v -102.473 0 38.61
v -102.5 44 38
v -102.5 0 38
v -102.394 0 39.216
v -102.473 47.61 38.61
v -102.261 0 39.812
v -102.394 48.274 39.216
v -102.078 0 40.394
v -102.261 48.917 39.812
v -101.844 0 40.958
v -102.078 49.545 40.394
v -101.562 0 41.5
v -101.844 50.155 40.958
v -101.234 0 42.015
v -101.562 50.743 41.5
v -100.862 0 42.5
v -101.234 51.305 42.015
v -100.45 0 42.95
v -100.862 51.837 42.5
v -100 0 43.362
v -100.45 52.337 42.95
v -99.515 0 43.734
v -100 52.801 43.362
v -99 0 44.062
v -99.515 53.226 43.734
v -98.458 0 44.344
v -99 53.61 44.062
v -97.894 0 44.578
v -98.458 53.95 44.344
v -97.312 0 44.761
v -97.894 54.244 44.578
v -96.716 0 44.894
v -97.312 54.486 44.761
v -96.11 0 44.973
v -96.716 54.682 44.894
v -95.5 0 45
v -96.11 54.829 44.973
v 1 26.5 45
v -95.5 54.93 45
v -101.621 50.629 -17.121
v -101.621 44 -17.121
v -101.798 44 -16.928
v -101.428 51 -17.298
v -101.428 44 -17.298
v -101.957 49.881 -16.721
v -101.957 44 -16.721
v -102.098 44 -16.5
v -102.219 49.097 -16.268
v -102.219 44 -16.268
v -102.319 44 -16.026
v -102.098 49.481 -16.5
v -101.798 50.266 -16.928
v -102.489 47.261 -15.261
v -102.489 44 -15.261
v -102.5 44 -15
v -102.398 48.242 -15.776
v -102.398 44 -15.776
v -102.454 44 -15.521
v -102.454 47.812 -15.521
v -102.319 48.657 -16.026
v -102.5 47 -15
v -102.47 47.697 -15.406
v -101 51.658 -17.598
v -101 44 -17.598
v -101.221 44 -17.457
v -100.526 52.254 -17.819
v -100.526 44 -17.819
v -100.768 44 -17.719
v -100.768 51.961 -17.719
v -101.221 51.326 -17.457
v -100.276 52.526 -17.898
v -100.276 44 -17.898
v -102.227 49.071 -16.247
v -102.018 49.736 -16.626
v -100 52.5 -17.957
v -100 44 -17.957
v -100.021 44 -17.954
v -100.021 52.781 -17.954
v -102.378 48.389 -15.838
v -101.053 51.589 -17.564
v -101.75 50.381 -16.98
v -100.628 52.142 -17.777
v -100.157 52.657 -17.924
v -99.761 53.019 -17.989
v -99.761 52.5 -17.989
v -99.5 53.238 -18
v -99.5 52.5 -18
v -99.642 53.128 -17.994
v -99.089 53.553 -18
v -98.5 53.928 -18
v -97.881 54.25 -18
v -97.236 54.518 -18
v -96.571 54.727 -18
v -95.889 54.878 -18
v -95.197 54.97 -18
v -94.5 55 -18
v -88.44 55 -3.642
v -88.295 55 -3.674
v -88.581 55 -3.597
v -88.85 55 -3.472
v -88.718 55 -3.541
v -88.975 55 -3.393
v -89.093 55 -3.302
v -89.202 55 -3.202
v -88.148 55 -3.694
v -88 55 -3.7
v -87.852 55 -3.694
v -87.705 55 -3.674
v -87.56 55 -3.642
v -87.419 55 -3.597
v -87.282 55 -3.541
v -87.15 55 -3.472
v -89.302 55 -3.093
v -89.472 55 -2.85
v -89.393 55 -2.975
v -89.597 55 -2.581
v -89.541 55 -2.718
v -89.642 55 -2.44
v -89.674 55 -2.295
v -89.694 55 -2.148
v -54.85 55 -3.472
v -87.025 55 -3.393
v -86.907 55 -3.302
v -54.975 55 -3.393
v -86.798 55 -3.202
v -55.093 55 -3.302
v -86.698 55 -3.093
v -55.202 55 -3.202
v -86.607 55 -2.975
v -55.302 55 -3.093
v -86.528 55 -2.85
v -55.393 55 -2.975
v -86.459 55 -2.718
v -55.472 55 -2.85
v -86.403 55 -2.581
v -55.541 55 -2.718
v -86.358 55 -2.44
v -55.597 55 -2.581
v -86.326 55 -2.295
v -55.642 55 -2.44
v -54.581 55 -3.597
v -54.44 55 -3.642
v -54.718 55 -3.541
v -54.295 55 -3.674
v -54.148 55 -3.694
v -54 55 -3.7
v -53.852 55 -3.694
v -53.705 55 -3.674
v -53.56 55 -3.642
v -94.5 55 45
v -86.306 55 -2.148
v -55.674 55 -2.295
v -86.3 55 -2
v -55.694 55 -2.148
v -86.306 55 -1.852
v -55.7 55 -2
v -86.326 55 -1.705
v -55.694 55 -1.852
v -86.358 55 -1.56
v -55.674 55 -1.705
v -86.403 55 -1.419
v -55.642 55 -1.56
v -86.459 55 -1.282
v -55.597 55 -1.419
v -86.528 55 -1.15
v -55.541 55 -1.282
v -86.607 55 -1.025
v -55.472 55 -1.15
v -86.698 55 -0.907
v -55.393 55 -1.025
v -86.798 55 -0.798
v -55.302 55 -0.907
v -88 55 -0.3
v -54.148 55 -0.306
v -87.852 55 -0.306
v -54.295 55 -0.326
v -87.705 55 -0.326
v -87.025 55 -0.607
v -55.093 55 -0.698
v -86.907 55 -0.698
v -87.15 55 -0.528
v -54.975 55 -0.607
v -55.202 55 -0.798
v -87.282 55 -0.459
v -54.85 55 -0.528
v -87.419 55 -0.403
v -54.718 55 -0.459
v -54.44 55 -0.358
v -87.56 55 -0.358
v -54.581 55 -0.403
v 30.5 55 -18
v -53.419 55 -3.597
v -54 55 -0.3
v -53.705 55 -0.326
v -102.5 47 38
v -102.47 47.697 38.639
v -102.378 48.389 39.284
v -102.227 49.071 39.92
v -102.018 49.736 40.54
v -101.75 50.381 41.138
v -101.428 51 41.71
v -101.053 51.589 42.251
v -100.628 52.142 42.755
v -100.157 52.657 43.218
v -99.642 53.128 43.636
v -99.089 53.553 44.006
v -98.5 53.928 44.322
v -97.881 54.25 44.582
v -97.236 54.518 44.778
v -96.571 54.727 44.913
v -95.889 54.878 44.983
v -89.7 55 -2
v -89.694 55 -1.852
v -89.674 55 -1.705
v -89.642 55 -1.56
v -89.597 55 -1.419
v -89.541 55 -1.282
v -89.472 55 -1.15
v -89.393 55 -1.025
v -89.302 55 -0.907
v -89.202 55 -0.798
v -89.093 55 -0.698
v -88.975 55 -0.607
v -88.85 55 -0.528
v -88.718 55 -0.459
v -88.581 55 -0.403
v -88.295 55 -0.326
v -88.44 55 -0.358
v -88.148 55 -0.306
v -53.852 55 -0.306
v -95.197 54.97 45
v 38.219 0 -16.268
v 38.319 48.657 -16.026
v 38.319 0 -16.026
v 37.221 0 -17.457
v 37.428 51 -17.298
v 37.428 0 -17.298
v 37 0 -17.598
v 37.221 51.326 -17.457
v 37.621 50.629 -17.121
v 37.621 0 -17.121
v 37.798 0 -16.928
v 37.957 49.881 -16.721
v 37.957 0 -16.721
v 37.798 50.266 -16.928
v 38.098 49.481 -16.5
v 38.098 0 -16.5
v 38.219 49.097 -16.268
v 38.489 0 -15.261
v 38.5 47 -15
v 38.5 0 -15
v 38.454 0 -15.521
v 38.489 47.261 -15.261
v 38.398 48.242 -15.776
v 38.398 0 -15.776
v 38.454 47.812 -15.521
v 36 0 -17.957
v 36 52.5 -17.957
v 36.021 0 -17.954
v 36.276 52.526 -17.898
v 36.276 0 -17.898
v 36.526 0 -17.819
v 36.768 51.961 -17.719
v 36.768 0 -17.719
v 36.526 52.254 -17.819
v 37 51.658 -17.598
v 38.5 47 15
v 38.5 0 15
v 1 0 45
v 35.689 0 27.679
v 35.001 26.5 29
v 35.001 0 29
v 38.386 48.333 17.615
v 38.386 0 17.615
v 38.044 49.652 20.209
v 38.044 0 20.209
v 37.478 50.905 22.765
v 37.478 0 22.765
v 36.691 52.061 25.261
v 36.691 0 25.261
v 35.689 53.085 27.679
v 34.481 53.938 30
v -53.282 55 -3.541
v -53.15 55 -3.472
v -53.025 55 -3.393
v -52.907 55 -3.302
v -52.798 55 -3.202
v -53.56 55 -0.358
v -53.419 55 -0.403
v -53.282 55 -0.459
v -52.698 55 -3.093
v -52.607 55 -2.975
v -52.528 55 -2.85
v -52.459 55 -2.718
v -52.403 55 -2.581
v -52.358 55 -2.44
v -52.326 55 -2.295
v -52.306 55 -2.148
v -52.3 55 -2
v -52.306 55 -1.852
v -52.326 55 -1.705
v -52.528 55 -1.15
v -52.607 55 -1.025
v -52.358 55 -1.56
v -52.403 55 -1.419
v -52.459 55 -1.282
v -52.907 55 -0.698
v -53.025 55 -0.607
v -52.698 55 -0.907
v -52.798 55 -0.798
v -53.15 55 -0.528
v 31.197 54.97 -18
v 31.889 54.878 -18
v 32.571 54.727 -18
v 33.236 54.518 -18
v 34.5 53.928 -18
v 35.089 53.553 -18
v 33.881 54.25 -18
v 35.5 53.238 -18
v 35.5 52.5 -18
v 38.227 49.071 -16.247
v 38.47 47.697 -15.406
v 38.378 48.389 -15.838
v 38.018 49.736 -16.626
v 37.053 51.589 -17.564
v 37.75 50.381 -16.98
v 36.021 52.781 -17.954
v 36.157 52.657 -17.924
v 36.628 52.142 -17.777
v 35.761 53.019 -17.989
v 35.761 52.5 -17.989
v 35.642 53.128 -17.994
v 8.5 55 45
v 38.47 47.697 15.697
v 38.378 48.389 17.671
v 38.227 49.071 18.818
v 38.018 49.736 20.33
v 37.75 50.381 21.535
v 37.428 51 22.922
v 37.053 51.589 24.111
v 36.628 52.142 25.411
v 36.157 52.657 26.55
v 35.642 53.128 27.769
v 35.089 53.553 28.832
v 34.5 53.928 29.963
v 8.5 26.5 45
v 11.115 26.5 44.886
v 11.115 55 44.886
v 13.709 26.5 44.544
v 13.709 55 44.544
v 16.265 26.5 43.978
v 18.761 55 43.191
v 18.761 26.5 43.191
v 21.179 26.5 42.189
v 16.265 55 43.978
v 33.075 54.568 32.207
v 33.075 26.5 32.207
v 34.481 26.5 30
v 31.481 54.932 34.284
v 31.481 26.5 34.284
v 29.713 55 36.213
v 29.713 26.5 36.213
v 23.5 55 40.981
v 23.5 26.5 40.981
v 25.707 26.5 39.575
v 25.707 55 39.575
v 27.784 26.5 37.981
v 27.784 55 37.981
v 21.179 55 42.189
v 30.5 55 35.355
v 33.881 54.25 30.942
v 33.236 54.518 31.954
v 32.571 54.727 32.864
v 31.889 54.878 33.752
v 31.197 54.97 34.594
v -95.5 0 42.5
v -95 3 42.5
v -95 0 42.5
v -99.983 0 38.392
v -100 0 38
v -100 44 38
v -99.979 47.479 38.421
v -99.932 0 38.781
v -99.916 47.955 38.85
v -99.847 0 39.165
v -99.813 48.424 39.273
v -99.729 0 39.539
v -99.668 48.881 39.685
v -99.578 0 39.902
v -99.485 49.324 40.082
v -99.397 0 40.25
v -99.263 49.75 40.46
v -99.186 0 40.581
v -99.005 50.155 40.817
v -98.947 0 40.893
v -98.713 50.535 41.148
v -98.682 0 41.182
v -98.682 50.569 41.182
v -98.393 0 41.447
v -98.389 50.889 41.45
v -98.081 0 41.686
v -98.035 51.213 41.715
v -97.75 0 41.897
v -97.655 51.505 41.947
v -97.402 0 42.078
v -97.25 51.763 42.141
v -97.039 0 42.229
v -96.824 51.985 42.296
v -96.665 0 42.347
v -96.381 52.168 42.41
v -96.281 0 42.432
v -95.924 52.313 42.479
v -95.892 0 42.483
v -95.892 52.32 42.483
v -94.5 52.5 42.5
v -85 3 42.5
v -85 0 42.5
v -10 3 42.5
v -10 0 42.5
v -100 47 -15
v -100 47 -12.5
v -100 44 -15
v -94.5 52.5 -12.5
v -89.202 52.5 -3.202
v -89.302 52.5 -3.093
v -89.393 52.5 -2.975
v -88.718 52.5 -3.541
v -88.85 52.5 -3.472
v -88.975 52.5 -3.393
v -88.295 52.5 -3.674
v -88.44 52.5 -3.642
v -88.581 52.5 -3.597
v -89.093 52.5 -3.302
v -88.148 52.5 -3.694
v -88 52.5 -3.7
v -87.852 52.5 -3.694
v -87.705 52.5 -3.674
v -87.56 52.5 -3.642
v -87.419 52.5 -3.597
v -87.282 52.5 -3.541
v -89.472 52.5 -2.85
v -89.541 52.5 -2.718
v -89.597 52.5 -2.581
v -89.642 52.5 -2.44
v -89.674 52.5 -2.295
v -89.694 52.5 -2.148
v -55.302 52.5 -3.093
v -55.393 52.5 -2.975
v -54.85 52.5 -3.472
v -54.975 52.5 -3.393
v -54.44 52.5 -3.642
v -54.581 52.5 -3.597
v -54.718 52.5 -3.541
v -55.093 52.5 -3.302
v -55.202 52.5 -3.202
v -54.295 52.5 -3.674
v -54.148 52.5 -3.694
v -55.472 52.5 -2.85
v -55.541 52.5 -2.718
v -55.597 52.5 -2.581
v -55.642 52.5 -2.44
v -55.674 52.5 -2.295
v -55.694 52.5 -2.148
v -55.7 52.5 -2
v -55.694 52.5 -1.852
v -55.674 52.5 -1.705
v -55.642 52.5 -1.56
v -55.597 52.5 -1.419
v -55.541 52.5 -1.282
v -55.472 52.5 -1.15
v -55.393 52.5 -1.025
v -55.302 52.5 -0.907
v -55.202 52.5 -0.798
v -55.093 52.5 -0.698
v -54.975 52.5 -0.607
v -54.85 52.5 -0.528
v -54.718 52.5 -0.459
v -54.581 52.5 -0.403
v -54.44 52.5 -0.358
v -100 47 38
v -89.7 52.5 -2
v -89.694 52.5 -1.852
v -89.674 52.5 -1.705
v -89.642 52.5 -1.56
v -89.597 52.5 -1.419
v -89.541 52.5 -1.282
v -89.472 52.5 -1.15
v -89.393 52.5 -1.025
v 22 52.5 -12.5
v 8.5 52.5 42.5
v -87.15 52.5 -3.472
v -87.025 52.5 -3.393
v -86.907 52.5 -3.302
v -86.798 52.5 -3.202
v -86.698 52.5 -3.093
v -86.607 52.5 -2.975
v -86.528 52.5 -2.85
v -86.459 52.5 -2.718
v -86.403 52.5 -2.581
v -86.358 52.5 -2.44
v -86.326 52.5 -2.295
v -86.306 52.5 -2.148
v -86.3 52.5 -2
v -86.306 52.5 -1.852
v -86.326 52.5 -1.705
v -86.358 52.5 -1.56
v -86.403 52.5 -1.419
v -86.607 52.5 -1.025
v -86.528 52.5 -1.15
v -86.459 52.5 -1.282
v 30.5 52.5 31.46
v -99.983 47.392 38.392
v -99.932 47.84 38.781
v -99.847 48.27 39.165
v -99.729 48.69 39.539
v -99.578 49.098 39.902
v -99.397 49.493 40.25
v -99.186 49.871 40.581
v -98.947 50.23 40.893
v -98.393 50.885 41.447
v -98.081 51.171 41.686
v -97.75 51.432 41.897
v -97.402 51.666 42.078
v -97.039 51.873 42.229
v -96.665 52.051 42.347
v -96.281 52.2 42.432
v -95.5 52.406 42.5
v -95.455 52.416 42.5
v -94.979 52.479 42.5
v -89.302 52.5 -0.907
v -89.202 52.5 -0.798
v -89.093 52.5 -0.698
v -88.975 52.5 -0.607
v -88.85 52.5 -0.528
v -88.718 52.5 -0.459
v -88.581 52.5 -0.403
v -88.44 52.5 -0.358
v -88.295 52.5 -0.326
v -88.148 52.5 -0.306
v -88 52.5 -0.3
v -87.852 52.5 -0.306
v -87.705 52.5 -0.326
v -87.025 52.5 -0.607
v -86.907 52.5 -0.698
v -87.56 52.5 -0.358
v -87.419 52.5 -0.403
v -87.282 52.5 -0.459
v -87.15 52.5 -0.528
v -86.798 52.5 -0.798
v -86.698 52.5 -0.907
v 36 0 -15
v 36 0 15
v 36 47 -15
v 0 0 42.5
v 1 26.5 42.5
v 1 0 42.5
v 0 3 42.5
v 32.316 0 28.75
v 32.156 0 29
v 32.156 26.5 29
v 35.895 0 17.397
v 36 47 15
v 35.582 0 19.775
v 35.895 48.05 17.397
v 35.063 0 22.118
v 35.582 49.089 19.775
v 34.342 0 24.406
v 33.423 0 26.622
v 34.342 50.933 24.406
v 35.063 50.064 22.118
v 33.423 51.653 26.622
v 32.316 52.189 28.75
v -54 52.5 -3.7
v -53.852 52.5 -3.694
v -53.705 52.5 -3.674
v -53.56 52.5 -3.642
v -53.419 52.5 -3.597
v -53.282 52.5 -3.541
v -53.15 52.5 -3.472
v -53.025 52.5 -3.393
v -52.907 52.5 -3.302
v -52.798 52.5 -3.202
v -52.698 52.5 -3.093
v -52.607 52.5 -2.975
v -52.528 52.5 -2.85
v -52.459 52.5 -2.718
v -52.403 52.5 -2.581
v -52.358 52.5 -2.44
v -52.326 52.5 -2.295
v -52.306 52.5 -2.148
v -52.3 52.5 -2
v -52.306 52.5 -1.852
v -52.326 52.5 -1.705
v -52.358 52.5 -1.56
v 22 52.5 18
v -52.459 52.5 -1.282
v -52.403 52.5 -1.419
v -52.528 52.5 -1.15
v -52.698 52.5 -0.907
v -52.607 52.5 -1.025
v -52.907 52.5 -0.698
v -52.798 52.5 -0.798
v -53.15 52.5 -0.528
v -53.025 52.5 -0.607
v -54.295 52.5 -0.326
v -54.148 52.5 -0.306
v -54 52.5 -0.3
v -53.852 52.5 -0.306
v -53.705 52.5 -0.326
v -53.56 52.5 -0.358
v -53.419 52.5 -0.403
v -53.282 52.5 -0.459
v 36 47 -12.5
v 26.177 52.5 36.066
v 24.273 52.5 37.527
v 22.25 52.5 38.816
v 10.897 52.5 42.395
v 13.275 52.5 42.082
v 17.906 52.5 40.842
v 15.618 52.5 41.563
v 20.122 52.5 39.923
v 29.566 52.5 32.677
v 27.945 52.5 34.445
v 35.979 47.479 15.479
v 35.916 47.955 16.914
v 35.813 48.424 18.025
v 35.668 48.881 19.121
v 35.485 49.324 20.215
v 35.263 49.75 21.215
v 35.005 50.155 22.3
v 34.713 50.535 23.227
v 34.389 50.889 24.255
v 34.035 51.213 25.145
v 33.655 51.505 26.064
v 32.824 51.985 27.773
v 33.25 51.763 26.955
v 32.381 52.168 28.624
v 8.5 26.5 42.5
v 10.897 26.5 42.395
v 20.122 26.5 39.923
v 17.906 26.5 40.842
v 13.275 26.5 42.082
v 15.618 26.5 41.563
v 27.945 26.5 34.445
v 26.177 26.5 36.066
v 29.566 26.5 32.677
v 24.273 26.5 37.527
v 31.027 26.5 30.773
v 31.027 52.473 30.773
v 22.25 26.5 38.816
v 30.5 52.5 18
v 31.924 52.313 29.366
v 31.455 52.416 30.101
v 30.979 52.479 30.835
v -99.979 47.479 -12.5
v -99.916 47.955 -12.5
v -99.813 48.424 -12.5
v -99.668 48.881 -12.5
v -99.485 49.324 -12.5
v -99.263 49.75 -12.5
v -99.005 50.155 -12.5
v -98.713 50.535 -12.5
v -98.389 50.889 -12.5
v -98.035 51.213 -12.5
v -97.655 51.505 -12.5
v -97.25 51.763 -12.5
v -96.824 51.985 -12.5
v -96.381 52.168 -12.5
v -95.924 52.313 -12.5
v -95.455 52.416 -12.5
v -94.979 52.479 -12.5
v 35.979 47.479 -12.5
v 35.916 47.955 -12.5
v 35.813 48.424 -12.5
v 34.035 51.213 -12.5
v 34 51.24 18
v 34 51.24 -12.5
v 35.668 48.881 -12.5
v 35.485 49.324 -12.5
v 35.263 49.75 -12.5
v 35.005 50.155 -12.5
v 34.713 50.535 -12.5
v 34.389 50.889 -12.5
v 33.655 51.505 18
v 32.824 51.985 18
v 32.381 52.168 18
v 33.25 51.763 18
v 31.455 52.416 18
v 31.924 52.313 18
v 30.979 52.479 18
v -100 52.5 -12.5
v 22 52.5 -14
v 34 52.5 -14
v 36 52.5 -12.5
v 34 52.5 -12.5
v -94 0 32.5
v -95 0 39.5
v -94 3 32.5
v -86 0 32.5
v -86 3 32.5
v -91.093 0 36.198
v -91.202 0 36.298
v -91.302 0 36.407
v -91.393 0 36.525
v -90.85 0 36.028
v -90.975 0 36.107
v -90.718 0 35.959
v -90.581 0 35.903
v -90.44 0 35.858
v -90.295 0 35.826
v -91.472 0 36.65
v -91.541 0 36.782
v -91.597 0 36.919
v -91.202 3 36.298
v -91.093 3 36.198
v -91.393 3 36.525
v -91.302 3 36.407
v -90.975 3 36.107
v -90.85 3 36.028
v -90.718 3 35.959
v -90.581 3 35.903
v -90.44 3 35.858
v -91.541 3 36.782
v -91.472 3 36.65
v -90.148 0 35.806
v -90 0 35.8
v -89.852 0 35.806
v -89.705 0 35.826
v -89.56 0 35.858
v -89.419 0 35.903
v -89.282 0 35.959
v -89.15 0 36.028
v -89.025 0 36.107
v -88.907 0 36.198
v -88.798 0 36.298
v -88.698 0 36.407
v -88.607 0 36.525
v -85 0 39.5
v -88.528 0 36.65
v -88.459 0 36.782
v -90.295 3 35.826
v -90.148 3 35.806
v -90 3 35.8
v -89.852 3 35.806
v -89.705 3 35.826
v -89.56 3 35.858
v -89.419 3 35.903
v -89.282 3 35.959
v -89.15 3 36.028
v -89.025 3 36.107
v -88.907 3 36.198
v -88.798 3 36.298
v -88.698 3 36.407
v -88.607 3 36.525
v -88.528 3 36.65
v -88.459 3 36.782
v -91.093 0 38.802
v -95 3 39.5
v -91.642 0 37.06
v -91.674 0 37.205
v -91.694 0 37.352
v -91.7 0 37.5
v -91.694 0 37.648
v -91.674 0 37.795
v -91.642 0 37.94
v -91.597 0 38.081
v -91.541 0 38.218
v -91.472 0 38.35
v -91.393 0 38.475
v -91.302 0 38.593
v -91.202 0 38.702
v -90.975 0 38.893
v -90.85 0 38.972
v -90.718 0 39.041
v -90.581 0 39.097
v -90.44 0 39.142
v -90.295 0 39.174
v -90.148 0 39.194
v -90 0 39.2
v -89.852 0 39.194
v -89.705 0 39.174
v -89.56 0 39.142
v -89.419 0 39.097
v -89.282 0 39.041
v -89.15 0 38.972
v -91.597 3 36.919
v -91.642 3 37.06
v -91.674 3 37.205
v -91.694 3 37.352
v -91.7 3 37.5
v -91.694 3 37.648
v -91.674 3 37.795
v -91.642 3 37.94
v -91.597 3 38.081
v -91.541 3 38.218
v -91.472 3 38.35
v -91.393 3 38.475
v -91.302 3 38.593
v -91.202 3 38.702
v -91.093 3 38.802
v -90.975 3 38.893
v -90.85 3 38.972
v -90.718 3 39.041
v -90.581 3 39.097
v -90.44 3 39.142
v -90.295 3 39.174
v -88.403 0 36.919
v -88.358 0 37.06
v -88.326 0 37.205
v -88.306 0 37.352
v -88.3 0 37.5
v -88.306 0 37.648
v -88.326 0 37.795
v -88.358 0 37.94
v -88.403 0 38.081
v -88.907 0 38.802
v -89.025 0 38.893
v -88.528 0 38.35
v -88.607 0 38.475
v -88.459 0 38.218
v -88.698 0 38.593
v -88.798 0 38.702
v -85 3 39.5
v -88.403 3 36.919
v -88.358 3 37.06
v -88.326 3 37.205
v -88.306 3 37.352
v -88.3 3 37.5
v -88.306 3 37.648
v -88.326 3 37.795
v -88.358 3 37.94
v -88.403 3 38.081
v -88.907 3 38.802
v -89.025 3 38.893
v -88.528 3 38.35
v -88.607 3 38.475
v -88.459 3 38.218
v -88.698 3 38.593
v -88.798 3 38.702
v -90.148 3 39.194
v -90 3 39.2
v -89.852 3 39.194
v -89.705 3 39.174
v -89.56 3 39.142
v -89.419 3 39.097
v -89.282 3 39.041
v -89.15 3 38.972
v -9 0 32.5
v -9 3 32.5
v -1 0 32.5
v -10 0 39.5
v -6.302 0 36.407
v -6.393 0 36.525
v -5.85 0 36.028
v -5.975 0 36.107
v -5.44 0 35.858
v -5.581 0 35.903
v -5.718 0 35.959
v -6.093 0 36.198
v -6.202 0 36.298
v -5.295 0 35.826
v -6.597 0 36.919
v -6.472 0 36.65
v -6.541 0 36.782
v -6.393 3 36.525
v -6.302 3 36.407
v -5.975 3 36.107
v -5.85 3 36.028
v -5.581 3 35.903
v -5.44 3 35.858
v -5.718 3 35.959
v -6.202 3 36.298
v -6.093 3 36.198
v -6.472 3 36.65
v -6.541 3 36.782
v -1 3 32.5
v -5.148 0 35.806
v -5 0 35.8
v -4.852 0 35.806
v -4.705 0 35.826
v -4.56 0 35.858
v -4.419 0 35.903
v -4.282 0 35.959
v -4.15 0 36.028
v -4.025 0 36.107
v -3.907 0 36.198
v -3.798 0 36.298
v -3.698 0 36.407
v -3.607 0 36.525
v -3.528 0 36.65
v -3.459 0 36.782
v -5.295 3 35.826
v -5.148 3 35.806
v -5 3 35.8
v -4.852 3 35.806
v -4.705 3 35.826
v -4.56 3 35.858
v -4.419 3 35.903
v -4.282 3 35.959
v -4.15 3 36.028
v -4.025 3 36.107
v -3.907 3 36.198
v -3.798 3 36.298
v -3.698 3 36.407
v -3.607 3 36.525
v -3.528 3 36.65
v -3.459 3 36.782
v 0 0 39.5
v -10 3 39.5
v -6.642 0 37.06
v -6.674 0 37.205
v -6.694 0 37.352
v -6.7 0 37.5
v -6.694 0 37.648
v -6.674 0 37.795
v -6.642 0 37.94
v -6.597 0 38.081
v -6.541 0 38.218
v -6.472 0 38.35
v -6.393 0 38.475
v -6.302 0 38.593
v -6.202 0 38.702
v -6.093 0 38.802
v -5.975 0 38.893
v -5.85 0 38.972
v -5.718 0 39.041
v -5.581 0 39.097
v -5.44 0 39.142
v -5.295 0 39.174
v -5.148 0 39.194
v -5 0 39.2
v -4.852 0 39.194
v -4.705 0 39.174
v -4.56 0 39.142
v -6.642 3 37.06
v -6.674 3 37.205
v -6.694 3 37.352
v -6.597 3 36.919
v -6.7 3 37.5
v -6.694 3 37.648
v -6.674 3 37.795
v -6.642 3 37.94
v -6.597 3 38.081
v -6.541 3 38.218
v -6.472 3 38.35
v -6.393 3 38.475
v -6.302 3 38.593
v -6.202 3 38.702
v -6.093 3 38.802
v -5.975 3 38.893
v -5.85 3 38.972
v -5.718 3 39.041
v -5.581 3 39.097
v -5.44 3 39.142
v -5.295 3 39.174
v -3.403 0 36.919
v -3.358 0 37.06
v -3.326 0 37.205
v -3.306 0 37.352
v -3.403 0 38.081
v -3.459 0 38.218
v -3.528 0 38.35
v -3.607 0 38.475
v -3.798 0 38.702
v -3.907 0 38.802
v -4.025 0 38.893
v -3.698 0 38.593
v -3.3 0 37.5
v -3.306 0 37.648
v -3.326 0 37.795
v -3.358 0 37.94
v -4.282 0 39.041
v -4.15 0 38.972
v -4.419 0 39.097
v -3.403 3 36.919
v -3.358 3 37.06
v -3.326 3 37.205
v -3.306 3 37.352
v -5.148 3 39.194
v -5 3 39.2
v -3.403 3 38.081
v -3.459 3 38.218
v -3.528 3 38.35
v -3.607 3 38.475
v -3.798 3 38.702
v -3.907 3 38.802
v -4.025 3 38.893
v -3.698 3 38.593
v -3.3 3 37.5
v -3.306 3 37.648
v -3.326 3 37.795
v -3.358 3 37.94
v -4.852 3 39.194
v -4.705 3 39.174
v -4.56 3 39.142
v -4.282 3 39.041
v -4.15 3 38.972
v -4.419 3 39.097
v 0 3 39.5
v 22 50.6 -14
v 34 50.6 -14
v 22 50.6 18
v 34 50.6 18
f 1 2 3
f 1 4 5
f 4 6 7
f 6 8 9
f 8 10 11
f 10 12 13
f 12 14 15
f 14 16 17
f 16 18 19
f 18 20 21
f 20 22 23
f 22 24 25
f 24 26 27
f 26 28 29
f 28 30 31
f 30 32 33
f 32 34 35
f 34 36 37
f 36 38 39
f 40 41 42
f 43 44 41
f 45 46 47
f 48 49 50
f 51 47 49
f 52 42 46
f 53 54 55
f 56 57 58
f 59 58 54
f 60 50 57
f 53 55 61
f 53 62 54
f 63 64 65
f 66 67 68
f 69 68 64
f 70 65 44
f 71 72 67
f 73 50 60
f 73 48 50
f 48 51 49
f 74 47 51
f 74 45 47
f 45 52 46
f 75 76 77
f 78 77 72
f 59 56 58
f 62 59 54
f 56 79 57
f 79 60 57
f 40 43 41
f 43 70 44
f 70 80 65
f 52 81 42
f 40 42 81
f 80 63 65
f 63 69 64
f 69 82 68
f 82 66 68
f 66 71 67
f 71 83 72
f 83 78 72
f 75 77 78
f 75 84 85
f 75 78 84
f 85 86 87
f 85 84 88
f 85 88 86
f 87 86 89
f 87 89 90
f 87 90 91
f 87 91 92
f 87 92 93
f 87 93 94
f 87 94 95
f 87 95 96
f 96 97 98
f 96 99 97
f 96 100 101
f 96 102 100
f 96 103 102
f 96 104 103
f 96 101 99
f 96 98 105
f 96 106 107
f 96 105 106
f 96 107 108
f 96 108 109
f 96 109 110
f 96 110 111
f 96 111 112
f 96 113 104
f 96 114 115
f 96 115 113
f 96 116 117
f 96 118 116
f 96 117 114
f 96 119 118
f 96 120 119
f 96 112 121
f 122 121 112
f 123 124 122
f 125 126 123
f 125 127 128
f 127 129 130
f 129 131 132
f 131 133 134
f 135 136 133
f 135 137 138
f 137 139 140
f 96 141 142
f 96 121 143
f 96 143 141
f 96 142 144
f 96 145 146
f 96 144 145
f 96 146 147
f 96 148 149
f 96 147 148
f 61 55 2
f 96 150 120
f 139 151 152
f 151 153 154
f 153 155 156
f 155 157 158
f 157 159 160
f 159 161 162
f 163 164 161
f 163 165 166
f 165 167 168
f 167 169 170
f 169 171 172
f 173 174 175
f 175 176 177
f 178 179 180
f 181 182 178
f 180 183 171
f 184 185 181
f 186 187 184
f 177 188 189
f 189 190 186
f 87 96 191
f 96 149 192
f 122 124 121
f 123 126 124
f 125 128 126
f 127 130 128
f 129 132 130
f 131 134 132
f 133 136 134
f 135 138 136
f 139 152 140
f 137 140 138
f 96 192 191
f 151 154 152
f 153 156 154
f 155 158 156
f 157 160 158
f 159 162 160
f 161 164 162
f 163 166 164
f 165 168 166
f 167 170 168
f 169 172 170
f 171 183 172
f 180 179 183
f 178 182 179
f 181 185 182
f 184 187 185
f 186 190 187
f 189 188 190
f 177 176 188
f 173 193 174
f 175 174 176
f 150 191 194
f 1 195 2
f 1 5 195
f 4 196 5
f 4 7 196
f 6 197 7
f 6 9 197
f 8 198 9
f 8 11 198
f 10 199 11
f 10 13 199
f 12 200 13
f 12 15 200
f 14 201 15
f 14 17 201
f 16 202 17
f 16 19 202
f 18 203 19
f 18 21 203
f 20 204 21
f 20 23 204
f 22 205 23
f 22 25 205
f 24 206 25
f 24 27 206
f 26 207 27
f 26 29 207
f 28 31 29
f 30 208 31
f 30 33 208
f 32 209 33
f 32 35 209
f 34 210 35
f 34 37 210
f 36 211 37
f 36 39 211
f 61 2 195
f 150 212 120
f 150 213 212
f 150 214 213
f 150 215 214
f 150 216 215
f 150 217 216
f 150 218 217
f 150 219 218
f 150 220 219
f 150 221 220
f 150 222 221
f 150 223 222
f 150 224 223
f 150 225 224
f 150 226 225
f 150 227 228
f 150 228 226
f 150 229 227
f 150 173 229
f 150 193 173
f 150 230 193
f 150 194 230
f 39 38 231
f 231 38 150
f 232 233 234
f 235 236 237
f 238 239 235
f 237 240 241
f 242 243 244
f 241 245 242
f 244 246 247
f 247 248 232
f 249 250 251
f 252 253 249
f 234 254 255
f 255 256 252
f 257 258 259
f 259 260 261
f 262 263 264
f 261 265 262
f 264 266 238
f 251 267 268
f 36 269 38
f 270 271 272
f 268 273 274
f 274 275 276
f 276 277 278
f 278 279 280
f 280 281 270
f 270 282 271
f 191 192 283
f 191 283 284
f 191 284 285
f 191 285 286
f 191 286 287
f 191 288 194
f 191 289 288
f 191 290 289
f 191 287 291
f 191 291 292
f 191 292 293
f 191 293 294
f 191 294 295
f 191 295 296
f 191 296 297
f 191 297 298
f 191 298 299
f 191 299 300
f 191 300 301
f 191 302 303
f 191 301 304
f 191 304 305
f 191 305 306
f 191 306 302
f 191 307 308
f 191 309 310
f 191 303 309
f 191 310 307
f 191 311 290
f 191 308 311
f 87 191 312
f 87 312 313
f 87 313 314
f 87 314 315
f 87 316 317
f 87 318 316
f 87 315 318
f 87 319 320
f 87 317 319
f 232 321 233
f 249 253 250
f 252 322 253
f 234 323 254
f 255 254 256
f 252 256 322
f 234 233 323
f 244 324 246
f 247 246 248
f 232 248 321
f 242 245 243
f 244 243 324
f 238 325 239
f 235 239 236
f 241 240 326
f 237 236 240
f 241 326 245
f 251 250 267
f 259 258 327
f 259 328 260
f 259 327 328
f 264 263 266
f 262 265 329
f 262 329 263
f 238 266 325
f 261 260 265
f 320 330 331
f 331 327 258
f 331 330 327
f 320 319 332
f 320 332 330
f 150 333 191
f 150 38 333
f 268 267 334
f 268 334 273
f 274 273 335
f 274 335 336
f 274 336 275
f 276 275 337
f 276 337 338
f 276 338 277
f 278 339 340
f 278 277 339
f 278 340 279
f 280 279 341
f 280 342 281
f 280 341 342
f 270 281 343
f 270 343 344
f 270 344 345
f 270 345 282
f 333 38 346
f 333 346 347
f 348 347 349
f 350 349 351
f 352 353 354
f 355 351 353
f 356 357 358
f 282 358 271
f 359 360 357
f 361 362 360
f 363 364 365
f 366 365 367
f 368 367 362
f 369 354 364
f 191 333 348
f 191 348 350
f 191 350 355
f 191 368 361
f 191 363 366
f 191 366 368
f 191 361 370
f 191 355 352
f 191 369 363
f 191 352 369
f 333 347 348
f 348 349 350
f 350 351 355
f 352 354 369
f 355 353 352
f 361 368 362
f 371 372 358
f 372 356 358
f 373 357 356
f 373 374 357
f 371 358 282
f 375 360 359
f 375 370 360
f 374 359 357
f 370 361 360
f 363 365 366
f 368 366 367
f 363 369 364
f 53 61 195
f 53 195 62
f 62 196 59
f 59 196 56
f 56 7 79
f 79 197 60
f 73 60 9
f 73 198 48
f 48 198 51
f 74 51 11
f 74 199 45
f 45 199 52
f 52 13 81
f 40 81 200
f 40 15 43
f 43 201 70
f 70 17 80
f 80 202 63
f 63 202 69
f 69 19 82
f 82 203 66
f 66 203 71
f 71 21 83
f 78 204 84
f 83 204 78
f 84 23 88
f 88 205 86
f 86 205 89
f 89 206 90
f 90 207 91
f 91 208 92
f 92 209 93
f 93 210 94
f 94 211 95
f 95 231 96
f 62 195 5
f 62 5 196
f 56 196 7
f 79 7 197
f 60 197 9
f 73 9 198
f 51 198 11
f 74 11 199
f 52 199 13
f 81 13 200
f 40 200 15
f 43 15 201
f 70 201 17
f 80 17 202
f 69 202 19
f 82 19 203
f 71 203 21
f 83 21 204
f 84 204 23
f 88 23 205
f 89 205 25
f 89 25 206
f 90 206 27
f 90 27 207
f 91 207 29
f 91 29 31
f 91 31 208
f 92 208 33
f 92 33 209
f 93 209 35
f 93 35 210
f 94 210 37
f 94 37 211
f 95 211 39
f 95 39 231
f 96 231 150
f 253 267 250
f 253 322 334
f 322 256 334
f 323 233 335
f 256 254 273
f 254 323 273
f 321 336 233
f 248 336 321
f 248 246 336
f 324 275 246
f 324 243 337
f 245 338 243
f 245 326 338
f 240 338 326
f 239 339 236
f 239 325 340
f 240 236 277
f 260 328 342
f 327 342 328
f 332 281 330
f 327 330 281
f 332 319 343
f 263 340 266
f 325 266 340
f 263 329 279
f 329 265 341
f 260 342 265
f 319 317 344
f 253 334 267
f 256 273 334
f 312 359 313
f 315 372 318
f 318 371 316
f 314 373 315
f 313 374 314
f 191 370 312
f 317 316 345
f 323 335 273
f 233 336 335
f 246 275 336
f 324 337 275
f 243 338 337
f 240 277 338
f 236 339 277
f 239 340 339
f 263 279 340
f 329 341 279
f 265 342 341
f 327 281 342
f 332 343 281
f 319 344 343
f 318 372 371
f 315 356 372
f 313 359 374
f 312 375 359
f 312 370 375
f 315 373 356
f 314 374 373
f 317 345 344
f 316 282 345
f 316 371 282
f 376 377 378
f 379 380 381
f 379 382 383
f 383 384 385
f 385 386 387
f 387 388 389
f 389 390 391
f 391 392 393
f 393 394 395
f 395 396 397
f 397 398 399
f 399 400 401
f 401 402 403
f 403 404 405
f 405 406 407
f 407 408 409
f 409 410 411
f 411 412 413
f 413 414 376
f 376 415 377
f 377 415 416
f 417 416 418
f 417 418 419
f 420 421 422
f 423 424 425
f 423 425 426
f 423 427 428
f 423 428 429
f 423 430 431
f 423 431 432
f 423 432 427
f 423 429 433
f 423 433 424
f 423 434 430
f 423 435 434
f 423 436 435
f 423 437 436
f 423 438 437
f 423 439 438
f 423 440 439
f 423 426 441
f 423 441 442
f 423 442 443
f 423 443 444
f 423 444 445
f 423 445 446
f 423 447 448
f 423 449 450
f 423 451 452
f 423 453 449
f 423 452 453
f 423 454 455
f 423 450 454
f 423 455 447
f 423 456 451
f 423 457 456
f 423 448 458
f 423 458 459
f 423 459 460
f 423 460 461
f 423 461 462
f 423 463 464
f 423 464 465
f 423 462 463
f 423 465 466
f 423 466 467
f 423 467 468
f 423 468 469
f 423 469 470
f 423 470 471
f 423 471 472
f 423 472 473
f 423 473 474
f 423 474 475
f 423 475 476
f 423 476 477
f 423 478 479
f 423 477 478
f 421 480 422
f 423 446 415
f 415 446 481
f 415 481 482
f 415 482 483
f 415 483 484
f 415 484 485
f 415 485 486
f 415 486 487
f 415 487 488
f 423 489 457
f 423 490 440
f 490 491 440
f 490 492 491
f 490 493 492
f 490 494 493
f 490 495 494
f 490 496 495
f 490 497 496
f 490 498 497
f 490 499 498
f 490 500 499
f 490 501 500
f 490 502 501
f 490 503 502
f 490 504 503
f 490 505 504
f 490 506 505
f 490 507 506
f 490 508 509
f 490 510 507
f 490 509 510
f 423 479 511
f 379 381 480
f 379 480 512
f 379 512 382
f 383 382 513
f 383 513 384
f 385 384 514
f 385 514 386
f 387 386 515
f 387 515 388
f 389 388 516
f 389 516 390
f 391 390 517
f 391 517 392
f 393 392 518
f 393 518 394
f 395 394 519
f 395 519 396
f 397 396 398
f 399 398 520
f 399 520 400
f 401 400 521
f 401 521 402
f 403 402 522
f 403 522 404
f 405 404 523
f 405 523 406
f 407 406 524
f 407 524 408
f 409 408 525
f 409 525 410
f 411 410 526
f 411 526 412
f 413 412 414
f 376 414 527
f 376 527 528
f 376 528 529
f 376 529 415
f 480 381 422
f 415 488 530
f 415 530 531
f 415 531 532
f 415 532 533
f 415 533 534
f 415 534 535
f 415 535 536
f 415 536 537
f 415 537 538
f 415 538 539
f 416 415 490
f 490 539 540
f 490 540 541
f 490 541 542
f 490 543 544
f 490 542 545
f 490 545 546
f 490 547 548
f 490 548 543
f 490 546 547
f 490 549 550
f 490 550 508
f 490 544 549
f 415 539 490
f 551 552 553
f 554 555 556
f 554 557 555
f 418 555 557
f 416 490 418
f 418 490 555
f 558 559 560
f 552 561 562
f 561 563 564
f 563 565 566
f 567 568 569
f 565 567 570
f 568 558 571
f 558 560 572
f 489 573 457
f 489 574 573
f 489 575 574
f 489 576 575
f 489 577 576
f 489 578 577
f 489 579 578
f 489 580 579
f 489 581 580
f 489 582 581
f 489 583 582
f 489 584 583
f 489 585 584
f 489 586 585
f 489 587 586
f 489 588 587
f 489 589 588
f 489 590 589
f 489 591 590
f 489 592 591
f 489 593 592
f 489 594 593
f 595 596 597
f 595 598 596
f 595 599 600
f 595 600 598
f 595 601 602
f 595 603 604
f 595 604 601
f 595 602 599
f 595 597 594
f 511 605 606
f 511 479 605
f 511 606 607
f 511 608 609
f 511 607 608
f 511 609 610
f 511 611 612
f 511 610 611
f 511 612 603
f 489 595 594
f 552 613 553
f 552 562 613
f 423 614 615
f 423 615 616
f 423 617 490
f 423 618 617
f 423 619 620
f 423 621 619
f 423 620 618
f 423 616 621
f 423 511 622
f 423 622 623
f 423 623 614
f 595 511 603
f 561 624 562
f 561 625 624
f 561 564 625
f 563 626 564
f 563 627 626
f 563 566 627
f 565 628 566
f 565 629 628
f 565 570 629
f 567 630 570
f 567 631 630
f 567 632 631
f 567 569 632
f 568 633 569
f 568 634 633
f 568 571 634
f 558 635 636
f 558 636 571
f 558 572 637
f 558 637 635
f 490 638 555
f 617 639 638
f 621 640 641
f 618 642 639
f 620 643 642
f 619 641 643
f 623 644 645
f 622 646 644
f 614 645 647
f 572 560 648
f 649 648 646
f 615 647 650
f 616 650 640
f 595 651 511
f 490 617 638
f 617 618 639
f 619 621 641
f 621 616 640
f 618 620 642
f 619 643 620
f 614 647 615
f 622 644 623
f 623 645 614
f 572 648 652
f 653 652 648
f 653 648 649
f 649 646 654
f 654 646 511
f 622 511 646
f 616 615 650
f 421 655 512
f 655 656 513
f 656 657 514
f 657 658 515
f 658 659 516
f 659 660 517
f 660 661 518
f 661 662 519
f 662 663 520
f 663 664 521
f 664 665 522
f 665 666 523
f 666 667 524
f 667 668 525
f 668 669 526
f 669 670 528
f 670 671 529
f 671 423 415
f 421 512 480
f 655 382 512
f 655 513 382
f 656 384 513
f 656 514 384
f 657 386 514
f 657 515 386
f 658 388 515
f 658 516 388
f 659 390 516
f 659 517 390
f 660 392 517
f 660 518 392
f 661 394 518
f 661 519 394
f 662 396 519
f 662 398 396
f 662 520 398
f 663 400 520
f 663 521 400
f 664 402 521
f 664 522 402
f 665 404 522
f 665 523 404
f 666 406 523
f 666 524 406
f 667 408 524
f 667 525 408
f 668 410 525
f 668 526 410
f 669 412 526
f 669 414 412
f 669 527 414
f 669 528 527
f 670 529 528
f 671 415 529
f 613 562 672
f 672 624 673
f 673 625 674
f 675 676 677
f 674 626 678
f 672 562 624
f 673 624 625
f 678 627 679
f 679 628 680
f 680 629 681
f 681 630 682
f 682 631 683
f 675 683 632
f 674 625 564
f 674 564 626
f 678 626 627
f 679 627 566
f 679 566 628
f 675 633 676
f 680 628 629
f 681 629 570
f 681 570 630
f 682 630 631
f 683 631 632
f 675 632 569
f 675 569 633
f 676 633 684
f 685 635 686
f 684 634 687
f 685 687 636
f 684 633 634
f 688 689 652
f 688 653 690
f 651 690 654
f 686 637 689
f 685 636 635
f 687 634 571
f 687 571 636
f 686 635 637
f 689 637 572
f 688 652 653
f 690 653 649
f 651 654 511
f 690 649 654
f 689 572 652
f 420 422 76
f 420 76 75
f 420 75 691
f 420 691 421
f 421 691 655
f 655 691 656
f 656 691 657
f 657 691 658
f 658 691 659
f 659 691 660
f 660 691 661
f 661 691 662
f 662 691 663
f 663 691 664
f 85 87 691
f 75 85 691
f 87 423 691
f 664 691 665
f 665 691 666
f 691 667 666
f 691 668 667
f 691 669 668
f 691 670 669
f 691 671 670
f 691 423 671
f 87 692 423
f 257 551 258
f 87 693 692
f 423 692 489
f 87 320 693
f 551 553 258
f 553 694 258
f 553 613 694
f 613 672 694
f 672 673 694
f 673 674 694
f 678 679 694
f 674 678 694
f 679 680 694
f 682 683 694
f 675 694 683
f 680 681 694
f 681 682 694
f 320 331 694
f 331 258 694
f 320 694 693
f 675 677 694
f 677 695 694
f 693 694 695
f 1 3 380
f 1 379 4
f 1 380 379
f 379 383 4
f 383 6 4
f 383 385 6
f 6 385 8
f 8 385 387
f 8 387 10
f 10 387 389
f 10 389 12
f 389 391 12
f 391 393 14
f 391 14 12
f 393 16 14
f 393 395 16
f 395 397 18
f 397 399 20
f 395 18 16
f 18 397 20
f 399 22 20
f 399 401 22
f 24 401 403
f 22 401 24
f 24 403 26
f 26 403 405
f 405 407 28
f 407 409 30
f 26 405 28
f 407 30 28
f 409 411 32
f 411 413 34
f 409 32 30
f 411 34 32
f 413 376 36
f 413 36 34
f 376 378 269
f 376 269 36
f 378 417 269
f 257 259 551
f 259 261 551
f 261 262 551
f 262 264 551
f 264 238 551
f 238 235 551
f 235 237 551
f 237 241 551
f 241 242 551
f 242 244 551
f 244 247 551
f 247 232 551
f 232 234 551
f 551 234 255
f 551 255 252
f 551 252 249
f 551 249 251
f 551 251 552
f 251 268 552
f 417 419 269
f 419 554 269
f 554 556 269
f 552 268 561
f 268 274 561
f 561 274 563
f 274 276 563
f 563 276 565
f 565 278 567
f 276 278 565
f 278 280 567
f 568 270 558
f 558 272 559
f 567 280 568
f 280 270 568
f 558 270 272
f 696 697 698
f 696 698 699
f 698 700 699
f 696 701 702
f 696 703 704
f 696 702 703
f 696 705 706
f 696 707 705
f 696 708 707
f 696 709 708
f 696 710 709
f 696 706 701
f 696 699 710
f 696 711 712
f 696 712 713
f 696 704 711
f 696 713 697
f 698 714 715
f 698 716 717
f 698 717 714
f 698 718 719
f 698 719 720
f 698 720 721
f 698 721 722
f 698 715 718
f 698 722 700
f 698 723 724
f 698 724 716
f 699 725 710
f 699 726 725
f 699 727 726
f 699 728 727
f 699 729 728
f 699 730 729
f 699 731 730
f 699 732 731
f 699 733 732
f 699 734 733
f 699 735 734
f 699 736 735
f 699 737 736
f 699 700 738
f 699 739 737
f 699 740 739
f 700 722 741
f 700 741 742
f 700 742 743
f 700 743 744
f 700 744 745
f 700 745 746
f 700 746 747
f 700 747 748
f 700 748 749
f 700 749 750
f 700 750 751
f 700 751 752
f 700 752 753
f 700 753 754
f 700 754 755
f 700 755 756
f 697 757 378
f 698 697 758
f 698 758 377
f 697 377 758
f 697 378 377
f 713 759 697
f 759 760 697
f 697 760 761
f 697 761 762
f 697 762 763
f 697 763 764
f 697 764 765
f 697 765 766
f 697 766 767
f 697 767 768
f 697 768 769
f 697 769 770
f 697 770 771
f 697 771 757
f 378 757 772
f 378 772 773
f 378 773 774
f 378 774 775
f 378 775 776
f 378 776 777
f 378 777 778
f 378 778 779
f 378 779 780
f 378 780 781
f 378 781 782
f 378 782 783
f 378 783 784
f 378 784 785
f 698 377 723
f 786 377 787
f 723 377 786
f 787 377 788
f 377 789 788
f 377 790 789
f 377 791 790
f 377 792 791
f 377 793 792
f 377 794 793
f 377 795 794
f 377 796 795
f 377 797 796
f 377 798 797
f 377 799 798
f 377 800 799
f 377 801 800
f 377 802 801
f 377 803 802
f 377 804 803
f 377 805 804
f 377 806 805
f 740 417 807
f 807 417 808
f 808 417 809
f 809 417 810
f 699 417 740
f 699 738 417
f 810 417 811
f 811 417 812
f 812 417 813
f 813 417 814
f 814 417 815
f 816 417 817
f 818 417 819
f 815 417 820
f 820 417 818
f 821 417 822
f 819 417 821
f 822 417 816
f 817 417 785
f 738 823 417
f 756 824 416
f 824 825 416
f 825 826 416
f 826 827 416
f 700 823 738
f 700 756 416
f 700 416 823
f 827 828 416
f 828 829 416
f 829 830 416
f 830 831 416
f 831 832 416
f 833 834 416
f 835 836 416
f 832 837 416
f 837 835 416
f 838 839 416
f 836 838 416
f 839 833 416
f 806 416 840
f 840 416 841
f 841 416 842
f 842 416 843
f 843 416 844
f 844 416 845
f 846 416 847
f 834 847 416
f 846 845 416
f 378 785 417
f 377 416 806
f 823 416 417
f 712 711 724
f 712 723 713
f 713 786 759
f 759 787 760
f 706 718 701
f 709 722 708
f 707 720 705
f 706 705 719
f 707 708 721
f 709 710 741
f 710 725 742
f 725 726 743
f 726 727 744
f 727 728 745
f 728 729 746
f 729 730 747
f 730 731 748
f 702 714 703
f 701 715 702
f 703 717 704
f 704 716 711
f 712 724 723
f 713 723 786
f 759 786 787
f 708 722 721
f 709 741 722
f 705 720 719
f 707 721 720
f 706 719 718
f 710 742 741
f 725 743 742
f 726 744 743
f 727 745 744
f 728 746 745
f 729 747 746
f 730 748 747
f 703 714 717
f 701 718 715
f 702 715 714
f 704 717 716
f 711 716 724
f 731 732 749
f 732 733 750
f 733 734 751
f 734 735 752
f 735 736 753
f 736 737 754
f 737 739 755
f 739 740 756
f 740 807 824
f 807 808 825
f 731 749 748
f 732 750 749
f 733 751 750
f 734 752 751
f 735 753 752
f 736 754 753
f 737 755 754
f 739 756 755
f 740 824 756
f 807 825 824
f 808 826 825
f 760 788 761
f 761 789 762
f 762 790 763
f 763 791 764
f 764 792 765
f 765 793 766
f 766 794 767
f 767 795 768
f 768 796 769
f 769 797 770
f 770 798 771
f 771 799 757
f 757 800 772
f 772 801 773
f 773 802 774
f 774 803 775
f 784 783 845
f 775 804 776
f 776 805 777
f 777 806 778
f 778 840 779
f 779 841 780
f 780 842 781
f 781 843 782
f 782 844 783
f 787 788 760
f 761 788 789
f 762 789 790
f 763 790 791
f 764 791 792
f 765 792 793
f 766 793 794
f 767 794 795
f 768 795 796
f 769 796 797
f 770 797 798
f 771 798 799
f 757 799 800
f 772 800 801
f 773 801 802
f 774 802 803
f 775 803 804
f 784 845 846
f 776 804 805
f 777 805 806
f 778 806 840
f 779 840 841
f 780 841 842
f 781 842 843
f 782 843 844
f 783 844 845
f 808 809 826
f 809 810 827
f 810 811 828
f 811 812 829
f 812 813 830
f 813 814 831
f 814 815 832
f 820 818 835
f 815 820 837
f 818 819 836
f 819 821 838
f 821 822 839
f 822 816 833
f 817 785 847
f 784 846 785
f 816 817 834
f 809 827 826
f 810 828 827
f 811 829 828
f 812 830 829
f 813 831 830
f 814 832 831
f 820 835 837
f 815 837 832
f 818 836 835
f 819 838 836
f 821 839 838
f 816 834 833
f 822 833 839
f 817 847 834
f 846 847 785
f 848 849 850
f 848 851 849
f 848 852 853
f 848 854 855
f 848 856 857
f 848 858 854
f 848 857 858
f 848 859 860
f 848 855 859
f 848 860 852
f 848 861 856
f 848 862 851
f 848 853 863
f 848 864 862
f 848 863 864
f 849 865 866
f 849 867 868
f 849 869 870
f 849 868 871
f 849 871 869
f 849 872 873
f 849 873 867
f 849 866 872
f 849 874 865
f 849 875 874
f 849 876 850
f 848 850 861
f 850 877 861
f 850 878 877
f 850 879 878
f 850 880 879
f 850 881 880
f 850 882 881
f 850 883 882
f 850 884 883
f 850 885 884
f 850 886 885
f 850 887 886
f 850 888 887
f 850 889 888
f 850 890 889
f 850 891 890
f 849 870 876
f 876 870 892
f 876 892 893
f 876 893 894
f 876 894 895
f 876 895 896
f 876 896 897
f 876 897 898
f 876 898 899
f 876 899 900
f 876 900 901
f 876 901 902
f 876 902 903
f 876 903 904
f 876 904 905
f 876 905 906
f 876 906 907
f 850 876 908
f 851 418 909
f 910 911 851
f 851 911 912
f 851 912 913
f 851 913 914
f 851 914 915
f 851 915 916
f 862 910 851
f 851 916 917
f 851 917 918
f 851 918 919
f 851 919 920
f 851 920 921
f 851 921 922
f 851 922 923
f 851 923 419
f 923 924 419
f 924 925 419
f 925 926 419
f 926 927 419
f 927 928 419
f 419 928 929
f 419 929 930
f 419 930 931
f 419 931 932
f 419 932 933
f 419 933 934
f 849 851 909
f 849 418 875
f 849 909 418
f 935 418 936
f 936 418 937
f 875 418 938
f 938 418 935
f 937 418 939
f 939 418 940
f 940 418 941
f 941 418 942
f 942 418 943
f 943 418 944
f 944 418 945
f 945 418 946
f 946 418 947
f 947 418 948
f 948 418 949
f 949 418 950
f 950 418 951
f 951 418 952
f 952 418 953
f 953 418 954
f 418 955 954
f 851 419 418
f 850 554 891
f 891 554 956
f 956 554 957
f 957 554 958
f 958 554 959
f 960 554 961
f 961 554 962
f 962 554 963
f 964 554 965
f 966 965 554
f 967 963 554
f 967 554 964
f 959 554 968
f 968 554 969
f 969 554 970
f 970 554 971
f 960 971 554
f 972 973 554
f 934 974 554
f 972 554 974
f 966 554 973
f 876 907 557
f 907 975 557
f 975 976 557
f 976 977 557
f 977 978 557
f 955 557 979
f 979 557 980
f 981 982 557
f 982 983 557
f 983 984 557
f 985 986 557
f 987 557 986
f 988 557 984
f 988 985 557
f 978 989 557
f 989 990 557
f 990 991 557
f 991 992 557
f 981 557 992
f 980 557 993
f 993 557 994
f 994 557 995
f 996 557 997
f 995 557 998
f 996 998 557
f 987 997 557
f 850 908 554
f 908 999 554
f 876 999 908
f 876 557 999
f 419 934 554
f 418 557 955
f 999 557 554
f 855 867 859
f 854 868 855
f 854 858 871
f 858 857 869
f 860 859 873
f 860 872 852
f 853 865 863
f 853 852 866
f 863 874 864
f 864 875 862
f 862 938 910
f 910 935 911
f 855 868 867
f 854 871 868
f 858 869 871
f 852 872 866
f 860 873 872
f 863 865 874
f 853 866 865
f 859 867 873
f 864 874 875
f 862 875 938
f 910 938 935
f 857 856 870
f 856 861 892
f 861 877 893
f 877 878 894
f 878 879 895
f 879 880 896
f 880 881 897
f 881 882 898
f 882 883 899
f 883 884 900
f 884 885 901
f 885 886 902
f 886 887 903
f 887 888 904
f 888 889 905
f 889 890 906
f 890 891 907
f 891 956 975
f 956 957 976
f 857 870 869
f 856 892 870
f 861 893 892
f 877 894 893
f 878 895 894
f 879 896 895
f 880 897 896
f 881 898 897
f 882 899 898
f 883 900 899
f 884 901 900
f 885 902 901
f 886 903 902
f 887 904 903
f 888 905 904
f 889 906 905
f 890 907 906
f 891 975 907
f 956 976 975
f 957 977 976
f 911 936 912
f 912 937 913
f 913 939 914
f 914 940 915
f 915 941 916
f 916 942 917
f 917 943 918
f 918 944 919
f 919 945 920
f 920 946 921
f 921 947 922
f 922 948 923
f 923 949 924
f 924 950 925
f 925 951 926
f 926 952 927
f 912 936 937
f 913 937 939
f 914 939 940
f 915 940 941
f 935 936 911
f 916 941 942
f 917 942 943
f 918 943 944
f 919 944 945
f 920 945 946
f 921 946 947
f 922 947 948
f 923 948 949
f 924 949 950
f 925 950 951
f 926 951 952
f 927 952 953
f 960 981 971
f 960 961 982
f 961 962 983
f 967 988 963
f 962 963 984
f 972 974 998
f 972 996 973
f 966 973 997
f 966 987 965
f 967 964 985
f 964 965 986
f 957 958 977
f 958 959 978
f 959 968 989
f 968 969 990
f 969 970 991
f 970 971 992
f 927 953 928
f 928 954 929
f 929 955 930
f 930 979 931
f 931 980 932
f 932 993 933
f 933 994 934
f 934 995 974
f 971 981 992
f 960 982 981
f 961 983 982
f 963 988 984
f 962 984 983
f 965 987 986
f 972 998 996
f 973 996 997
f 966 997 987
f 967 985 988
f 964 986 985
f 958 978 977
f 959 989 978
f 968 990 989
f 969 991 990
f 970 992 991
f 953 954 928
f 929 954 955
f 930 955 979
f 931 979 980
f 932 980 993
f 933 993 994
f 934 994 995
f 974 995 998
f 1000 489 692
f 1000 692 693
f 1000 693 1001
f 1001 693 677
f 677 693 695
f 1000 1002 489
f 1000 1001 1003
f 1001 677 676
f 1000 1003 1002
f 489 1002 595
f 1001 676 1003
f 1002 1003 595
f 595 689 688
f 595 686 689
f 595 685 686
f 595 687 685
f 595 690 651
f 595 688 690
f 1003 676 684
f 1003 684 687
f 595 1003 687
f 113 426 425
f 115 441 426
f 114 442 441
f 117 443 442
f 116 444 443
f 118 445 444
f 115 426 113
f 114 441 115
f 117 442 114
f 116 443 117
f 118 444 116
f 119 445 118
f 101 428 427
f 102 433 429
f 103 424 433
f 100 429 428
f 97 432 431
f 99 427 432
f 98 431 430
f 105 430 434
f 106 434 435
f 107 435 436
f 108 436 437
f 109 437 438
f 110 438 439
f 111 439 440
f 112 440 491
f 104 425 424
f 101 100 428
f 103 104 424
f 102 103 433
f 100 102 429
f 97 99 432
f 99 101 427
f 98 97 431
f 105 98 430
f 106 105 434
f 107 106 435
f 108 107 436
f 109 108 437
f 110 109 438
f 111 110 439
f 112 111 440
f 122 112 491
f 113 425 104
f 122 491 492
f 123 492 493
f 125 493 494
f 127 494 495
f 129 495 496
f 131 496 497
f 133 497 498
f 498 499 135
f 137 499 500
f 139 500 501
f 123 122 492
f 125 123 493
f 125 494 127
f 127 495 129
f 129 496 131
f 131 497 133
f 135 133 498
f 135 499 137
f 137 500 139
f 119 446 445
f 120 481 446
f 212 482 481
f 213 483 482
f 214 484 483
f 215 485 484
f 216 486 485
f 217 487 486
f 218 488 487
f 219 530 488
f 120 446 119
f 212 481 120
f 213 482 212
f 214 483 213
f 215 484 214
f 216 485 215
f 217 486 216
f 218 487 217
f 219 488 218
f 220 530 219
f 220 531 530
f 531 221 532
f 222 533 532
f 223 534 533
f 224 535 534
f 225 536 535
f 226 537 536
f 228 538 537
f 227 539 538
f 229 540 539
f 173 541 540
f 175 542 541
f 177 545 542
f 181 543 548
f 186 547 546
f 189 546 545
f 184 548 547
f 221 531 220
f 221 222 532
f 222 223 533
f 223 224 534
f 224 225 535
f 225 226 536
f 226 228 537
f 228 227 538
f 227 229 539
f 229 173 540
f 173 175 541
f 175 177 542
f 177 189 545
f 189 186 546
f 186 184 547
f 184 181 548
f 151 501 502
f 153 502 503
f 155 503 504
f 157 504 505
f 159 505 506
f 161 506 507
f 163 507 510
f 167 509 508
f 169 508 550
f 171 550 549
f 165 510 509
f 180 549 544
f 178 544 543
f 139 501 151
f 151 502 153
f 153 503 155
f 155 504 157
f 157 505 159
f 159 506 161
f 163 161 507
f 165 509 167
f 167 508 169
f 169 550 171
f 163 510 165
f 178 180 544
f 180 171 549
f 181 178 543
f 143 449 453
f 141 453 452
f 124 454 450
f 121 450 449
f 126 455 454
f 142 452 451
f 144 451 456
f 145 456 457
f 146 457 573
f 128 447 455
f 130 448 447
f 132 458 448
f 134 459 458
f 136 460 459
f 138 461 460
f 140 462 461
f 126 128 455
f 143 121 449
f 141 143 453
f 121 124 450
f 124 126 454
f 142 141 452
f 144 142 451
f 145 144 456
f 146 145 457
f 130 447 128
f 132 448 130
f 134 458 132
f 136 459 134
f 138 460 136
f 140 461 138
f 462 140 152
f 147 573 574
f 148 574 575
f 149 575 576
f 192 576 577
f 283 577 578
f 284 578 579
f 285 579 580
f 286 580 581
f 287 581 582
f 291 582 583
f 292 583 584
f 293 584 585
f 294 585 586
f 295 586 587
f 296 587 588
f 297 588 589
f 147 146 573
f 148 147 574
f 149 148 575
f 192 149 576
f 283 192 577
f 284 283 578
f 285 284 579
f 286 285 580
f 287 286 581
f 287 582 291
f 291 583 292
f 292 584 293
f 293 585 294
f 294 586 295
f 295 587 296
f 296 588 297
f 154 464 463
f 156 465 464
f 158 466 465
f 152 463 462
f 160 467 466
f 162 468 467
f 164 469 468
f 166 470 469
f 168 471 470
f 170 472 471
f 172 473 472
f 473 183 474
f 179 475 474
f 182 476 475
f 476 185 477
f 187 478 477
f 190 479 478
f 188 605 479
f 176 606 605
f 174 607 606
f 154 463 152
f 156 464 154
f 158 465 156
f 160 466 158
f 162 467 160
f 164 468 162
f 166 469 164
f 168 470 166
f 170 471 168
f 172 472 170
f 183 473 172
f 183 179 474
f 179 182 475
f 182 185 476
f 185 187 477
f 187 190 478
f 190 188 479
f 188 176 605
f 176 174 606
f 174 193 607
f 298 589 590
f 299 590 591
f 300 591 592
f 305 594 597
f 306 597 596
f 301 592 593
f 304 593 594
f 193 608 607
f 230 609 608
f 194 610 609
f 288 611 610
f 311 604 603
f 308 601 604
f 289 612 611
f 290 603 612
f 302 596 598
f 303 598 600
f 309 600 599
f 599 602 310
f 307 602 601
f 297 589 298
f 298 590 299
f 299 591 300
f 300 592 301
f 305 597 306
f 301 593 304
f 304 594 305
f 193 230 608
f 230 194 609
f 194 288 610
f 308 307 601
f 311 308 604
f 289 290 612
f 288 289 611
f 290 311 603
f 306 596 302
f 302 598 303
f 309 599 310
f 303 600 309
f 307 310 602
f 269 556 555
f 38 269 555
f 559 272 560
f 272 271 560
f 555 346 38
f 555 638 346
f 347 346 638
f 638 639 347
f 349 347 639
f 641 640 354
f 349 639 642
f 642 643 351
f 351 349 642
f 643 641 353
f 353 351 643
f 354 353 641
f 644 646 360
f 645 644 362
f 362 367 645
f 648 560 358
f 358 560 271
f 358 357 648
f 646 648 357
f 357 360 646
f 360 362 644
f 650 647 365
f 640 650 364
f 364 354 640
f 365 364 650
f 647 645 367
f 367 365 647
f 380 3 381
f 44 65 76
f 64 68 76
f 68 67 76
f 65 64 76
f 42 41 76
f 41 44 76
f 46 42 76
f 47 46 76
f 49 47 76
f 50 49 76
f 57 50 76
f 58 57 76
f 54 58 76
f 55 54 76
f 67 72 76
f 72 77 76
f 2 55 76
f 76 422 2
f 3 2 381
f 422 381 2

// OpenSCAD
// file: ../md_params.scad
// =====================================================================
//  Microduck-look skin for the Open Duck Mini v2 skeleton
//  Shared parameters and helpers.
//  Frame: Open Duck print/robot frame, mm. +x forward, +y left, +z up.
//  Every part is modelled where it sits on the robot (zero pose).
// =====================================================================

$fn = 72;
EPS = 0.01;

// ---------- fasteners ----------
INSERT_D   = 4.0;   // hole for M3 x 5 brass heat-set insert (Amazon B0DZ8B7FW1)
INSERT_L   = 6.0;   // hole depth for that insert
M3_CLR     = 3.4;   // M3 clearance
M3_HEAD    = 6.5;   // M3 socket-head counterbore
M3_NUT     = 6.4;   // M3 nut across corners (+clearance)
M2_TAP     = 1.8;   // M2 self-tapping pilot (SG90 tab screws, servo adapter)
M25_TAP    = 2.2;   // M2.5 self-tapping pilot (Radxa)
M2_CLR     = 2.4;

// ---------- colours (for previews only) ----------
C_WHITE = [0.95, 0.94, 0.90];
C_BLACK = [0.13, 0.13, 0.14];

// ---------- helpers ----------
function lerp(a, b, t) = a + (b - a) * t;

// Section with vertical sides from zb to zc and a superellipse cap from zc to zt.
// Points are (y, z). n = 2 gives an ellipse, larger n gives a squarer top.
function se_pts(w, zb, zc, zt, n, N = 56) =
    concat(
        [[ w, zb]],
        [for (i = [0:N]) let(t = i * 180 / N, c = cos(t), s = sin(t))
            [w * sign(c) * pow(abs(c), 2 / n), zc + (zt - zc) * pow(abs(s), 2 / n)]],
        [[-w, zb]]
    );

// st = [x, half_width, z_bottom, z_curve_start, z_top, exponent]
module station(st, inset = 0, ext = 0) {
    translate([st[0], 0, 0]) rotate([90, 0, 90])
        linear_extrude(height = EPS, center = true)
            offset(delta = -inset)
                polygon(se_pts(st[1], st[2] - ext, st[3], st[4], st[5]));
}

// piecewise loft through convex stations (hull of neighbours)
module loft(sts, inset = 0, ext = 0) {
    for (i = [0:len(sts) - 2])
        hull() { station(sts[i], inset, ext); station(sts[i + 1], inset, ext); }
}

// station parameters interpolated at any x inside the list
function st_at(sts, x) =
    let(i = max([for (k = [0:len(sts) - 2]) if (sts[k][0] <= x) k]),
        a = sts[i], b = sts[i + 1], t = (x - a[0]) / (b[0] - a[0]))
    [x, lerp(a[1], b[1], t), lerp(a[2], b[2], t), lerp(a[3], b[3], t),
        lerp(a[4], b[4], t), lerp(a[5], b[5], t)];

// heat-set insert pocket: opening at origin, going along -z by default
module insert_hole(depth = INSERT_L, d = INSERT_D) {
    translate([0, 0, -depth]) cylinder(d = d, h = depth + EPS);
    translate([0, 0, -0.6]) cylinder(d1 = d, d2 = d + 0.8, h = 0.6 + EPS);   // lead-in chamfer
}

// M3 clearance with counterbore, axis +z, counterbore at the top
module m3_cb(len_total, cb_depth) {
    translate([0, 0, -EPS]) cylinder(d = M3_CLR, h = len_total + 2 * EPS);
    translate([0, 0, len_total - cb_depth]) cylinder(d = M3_HEAD, h = cb_depth + 1);
}

module rrect(x0, x1, y0, y1, r) {
    translate([x0 + r, y0 + r]) offset(r = r) square([x1 - x0 - 2 * r, y1 - y0 - 2 * r]);
}
// main file
include <../md_params.scad>
include <../md_body.scad>
body_shell(1);
